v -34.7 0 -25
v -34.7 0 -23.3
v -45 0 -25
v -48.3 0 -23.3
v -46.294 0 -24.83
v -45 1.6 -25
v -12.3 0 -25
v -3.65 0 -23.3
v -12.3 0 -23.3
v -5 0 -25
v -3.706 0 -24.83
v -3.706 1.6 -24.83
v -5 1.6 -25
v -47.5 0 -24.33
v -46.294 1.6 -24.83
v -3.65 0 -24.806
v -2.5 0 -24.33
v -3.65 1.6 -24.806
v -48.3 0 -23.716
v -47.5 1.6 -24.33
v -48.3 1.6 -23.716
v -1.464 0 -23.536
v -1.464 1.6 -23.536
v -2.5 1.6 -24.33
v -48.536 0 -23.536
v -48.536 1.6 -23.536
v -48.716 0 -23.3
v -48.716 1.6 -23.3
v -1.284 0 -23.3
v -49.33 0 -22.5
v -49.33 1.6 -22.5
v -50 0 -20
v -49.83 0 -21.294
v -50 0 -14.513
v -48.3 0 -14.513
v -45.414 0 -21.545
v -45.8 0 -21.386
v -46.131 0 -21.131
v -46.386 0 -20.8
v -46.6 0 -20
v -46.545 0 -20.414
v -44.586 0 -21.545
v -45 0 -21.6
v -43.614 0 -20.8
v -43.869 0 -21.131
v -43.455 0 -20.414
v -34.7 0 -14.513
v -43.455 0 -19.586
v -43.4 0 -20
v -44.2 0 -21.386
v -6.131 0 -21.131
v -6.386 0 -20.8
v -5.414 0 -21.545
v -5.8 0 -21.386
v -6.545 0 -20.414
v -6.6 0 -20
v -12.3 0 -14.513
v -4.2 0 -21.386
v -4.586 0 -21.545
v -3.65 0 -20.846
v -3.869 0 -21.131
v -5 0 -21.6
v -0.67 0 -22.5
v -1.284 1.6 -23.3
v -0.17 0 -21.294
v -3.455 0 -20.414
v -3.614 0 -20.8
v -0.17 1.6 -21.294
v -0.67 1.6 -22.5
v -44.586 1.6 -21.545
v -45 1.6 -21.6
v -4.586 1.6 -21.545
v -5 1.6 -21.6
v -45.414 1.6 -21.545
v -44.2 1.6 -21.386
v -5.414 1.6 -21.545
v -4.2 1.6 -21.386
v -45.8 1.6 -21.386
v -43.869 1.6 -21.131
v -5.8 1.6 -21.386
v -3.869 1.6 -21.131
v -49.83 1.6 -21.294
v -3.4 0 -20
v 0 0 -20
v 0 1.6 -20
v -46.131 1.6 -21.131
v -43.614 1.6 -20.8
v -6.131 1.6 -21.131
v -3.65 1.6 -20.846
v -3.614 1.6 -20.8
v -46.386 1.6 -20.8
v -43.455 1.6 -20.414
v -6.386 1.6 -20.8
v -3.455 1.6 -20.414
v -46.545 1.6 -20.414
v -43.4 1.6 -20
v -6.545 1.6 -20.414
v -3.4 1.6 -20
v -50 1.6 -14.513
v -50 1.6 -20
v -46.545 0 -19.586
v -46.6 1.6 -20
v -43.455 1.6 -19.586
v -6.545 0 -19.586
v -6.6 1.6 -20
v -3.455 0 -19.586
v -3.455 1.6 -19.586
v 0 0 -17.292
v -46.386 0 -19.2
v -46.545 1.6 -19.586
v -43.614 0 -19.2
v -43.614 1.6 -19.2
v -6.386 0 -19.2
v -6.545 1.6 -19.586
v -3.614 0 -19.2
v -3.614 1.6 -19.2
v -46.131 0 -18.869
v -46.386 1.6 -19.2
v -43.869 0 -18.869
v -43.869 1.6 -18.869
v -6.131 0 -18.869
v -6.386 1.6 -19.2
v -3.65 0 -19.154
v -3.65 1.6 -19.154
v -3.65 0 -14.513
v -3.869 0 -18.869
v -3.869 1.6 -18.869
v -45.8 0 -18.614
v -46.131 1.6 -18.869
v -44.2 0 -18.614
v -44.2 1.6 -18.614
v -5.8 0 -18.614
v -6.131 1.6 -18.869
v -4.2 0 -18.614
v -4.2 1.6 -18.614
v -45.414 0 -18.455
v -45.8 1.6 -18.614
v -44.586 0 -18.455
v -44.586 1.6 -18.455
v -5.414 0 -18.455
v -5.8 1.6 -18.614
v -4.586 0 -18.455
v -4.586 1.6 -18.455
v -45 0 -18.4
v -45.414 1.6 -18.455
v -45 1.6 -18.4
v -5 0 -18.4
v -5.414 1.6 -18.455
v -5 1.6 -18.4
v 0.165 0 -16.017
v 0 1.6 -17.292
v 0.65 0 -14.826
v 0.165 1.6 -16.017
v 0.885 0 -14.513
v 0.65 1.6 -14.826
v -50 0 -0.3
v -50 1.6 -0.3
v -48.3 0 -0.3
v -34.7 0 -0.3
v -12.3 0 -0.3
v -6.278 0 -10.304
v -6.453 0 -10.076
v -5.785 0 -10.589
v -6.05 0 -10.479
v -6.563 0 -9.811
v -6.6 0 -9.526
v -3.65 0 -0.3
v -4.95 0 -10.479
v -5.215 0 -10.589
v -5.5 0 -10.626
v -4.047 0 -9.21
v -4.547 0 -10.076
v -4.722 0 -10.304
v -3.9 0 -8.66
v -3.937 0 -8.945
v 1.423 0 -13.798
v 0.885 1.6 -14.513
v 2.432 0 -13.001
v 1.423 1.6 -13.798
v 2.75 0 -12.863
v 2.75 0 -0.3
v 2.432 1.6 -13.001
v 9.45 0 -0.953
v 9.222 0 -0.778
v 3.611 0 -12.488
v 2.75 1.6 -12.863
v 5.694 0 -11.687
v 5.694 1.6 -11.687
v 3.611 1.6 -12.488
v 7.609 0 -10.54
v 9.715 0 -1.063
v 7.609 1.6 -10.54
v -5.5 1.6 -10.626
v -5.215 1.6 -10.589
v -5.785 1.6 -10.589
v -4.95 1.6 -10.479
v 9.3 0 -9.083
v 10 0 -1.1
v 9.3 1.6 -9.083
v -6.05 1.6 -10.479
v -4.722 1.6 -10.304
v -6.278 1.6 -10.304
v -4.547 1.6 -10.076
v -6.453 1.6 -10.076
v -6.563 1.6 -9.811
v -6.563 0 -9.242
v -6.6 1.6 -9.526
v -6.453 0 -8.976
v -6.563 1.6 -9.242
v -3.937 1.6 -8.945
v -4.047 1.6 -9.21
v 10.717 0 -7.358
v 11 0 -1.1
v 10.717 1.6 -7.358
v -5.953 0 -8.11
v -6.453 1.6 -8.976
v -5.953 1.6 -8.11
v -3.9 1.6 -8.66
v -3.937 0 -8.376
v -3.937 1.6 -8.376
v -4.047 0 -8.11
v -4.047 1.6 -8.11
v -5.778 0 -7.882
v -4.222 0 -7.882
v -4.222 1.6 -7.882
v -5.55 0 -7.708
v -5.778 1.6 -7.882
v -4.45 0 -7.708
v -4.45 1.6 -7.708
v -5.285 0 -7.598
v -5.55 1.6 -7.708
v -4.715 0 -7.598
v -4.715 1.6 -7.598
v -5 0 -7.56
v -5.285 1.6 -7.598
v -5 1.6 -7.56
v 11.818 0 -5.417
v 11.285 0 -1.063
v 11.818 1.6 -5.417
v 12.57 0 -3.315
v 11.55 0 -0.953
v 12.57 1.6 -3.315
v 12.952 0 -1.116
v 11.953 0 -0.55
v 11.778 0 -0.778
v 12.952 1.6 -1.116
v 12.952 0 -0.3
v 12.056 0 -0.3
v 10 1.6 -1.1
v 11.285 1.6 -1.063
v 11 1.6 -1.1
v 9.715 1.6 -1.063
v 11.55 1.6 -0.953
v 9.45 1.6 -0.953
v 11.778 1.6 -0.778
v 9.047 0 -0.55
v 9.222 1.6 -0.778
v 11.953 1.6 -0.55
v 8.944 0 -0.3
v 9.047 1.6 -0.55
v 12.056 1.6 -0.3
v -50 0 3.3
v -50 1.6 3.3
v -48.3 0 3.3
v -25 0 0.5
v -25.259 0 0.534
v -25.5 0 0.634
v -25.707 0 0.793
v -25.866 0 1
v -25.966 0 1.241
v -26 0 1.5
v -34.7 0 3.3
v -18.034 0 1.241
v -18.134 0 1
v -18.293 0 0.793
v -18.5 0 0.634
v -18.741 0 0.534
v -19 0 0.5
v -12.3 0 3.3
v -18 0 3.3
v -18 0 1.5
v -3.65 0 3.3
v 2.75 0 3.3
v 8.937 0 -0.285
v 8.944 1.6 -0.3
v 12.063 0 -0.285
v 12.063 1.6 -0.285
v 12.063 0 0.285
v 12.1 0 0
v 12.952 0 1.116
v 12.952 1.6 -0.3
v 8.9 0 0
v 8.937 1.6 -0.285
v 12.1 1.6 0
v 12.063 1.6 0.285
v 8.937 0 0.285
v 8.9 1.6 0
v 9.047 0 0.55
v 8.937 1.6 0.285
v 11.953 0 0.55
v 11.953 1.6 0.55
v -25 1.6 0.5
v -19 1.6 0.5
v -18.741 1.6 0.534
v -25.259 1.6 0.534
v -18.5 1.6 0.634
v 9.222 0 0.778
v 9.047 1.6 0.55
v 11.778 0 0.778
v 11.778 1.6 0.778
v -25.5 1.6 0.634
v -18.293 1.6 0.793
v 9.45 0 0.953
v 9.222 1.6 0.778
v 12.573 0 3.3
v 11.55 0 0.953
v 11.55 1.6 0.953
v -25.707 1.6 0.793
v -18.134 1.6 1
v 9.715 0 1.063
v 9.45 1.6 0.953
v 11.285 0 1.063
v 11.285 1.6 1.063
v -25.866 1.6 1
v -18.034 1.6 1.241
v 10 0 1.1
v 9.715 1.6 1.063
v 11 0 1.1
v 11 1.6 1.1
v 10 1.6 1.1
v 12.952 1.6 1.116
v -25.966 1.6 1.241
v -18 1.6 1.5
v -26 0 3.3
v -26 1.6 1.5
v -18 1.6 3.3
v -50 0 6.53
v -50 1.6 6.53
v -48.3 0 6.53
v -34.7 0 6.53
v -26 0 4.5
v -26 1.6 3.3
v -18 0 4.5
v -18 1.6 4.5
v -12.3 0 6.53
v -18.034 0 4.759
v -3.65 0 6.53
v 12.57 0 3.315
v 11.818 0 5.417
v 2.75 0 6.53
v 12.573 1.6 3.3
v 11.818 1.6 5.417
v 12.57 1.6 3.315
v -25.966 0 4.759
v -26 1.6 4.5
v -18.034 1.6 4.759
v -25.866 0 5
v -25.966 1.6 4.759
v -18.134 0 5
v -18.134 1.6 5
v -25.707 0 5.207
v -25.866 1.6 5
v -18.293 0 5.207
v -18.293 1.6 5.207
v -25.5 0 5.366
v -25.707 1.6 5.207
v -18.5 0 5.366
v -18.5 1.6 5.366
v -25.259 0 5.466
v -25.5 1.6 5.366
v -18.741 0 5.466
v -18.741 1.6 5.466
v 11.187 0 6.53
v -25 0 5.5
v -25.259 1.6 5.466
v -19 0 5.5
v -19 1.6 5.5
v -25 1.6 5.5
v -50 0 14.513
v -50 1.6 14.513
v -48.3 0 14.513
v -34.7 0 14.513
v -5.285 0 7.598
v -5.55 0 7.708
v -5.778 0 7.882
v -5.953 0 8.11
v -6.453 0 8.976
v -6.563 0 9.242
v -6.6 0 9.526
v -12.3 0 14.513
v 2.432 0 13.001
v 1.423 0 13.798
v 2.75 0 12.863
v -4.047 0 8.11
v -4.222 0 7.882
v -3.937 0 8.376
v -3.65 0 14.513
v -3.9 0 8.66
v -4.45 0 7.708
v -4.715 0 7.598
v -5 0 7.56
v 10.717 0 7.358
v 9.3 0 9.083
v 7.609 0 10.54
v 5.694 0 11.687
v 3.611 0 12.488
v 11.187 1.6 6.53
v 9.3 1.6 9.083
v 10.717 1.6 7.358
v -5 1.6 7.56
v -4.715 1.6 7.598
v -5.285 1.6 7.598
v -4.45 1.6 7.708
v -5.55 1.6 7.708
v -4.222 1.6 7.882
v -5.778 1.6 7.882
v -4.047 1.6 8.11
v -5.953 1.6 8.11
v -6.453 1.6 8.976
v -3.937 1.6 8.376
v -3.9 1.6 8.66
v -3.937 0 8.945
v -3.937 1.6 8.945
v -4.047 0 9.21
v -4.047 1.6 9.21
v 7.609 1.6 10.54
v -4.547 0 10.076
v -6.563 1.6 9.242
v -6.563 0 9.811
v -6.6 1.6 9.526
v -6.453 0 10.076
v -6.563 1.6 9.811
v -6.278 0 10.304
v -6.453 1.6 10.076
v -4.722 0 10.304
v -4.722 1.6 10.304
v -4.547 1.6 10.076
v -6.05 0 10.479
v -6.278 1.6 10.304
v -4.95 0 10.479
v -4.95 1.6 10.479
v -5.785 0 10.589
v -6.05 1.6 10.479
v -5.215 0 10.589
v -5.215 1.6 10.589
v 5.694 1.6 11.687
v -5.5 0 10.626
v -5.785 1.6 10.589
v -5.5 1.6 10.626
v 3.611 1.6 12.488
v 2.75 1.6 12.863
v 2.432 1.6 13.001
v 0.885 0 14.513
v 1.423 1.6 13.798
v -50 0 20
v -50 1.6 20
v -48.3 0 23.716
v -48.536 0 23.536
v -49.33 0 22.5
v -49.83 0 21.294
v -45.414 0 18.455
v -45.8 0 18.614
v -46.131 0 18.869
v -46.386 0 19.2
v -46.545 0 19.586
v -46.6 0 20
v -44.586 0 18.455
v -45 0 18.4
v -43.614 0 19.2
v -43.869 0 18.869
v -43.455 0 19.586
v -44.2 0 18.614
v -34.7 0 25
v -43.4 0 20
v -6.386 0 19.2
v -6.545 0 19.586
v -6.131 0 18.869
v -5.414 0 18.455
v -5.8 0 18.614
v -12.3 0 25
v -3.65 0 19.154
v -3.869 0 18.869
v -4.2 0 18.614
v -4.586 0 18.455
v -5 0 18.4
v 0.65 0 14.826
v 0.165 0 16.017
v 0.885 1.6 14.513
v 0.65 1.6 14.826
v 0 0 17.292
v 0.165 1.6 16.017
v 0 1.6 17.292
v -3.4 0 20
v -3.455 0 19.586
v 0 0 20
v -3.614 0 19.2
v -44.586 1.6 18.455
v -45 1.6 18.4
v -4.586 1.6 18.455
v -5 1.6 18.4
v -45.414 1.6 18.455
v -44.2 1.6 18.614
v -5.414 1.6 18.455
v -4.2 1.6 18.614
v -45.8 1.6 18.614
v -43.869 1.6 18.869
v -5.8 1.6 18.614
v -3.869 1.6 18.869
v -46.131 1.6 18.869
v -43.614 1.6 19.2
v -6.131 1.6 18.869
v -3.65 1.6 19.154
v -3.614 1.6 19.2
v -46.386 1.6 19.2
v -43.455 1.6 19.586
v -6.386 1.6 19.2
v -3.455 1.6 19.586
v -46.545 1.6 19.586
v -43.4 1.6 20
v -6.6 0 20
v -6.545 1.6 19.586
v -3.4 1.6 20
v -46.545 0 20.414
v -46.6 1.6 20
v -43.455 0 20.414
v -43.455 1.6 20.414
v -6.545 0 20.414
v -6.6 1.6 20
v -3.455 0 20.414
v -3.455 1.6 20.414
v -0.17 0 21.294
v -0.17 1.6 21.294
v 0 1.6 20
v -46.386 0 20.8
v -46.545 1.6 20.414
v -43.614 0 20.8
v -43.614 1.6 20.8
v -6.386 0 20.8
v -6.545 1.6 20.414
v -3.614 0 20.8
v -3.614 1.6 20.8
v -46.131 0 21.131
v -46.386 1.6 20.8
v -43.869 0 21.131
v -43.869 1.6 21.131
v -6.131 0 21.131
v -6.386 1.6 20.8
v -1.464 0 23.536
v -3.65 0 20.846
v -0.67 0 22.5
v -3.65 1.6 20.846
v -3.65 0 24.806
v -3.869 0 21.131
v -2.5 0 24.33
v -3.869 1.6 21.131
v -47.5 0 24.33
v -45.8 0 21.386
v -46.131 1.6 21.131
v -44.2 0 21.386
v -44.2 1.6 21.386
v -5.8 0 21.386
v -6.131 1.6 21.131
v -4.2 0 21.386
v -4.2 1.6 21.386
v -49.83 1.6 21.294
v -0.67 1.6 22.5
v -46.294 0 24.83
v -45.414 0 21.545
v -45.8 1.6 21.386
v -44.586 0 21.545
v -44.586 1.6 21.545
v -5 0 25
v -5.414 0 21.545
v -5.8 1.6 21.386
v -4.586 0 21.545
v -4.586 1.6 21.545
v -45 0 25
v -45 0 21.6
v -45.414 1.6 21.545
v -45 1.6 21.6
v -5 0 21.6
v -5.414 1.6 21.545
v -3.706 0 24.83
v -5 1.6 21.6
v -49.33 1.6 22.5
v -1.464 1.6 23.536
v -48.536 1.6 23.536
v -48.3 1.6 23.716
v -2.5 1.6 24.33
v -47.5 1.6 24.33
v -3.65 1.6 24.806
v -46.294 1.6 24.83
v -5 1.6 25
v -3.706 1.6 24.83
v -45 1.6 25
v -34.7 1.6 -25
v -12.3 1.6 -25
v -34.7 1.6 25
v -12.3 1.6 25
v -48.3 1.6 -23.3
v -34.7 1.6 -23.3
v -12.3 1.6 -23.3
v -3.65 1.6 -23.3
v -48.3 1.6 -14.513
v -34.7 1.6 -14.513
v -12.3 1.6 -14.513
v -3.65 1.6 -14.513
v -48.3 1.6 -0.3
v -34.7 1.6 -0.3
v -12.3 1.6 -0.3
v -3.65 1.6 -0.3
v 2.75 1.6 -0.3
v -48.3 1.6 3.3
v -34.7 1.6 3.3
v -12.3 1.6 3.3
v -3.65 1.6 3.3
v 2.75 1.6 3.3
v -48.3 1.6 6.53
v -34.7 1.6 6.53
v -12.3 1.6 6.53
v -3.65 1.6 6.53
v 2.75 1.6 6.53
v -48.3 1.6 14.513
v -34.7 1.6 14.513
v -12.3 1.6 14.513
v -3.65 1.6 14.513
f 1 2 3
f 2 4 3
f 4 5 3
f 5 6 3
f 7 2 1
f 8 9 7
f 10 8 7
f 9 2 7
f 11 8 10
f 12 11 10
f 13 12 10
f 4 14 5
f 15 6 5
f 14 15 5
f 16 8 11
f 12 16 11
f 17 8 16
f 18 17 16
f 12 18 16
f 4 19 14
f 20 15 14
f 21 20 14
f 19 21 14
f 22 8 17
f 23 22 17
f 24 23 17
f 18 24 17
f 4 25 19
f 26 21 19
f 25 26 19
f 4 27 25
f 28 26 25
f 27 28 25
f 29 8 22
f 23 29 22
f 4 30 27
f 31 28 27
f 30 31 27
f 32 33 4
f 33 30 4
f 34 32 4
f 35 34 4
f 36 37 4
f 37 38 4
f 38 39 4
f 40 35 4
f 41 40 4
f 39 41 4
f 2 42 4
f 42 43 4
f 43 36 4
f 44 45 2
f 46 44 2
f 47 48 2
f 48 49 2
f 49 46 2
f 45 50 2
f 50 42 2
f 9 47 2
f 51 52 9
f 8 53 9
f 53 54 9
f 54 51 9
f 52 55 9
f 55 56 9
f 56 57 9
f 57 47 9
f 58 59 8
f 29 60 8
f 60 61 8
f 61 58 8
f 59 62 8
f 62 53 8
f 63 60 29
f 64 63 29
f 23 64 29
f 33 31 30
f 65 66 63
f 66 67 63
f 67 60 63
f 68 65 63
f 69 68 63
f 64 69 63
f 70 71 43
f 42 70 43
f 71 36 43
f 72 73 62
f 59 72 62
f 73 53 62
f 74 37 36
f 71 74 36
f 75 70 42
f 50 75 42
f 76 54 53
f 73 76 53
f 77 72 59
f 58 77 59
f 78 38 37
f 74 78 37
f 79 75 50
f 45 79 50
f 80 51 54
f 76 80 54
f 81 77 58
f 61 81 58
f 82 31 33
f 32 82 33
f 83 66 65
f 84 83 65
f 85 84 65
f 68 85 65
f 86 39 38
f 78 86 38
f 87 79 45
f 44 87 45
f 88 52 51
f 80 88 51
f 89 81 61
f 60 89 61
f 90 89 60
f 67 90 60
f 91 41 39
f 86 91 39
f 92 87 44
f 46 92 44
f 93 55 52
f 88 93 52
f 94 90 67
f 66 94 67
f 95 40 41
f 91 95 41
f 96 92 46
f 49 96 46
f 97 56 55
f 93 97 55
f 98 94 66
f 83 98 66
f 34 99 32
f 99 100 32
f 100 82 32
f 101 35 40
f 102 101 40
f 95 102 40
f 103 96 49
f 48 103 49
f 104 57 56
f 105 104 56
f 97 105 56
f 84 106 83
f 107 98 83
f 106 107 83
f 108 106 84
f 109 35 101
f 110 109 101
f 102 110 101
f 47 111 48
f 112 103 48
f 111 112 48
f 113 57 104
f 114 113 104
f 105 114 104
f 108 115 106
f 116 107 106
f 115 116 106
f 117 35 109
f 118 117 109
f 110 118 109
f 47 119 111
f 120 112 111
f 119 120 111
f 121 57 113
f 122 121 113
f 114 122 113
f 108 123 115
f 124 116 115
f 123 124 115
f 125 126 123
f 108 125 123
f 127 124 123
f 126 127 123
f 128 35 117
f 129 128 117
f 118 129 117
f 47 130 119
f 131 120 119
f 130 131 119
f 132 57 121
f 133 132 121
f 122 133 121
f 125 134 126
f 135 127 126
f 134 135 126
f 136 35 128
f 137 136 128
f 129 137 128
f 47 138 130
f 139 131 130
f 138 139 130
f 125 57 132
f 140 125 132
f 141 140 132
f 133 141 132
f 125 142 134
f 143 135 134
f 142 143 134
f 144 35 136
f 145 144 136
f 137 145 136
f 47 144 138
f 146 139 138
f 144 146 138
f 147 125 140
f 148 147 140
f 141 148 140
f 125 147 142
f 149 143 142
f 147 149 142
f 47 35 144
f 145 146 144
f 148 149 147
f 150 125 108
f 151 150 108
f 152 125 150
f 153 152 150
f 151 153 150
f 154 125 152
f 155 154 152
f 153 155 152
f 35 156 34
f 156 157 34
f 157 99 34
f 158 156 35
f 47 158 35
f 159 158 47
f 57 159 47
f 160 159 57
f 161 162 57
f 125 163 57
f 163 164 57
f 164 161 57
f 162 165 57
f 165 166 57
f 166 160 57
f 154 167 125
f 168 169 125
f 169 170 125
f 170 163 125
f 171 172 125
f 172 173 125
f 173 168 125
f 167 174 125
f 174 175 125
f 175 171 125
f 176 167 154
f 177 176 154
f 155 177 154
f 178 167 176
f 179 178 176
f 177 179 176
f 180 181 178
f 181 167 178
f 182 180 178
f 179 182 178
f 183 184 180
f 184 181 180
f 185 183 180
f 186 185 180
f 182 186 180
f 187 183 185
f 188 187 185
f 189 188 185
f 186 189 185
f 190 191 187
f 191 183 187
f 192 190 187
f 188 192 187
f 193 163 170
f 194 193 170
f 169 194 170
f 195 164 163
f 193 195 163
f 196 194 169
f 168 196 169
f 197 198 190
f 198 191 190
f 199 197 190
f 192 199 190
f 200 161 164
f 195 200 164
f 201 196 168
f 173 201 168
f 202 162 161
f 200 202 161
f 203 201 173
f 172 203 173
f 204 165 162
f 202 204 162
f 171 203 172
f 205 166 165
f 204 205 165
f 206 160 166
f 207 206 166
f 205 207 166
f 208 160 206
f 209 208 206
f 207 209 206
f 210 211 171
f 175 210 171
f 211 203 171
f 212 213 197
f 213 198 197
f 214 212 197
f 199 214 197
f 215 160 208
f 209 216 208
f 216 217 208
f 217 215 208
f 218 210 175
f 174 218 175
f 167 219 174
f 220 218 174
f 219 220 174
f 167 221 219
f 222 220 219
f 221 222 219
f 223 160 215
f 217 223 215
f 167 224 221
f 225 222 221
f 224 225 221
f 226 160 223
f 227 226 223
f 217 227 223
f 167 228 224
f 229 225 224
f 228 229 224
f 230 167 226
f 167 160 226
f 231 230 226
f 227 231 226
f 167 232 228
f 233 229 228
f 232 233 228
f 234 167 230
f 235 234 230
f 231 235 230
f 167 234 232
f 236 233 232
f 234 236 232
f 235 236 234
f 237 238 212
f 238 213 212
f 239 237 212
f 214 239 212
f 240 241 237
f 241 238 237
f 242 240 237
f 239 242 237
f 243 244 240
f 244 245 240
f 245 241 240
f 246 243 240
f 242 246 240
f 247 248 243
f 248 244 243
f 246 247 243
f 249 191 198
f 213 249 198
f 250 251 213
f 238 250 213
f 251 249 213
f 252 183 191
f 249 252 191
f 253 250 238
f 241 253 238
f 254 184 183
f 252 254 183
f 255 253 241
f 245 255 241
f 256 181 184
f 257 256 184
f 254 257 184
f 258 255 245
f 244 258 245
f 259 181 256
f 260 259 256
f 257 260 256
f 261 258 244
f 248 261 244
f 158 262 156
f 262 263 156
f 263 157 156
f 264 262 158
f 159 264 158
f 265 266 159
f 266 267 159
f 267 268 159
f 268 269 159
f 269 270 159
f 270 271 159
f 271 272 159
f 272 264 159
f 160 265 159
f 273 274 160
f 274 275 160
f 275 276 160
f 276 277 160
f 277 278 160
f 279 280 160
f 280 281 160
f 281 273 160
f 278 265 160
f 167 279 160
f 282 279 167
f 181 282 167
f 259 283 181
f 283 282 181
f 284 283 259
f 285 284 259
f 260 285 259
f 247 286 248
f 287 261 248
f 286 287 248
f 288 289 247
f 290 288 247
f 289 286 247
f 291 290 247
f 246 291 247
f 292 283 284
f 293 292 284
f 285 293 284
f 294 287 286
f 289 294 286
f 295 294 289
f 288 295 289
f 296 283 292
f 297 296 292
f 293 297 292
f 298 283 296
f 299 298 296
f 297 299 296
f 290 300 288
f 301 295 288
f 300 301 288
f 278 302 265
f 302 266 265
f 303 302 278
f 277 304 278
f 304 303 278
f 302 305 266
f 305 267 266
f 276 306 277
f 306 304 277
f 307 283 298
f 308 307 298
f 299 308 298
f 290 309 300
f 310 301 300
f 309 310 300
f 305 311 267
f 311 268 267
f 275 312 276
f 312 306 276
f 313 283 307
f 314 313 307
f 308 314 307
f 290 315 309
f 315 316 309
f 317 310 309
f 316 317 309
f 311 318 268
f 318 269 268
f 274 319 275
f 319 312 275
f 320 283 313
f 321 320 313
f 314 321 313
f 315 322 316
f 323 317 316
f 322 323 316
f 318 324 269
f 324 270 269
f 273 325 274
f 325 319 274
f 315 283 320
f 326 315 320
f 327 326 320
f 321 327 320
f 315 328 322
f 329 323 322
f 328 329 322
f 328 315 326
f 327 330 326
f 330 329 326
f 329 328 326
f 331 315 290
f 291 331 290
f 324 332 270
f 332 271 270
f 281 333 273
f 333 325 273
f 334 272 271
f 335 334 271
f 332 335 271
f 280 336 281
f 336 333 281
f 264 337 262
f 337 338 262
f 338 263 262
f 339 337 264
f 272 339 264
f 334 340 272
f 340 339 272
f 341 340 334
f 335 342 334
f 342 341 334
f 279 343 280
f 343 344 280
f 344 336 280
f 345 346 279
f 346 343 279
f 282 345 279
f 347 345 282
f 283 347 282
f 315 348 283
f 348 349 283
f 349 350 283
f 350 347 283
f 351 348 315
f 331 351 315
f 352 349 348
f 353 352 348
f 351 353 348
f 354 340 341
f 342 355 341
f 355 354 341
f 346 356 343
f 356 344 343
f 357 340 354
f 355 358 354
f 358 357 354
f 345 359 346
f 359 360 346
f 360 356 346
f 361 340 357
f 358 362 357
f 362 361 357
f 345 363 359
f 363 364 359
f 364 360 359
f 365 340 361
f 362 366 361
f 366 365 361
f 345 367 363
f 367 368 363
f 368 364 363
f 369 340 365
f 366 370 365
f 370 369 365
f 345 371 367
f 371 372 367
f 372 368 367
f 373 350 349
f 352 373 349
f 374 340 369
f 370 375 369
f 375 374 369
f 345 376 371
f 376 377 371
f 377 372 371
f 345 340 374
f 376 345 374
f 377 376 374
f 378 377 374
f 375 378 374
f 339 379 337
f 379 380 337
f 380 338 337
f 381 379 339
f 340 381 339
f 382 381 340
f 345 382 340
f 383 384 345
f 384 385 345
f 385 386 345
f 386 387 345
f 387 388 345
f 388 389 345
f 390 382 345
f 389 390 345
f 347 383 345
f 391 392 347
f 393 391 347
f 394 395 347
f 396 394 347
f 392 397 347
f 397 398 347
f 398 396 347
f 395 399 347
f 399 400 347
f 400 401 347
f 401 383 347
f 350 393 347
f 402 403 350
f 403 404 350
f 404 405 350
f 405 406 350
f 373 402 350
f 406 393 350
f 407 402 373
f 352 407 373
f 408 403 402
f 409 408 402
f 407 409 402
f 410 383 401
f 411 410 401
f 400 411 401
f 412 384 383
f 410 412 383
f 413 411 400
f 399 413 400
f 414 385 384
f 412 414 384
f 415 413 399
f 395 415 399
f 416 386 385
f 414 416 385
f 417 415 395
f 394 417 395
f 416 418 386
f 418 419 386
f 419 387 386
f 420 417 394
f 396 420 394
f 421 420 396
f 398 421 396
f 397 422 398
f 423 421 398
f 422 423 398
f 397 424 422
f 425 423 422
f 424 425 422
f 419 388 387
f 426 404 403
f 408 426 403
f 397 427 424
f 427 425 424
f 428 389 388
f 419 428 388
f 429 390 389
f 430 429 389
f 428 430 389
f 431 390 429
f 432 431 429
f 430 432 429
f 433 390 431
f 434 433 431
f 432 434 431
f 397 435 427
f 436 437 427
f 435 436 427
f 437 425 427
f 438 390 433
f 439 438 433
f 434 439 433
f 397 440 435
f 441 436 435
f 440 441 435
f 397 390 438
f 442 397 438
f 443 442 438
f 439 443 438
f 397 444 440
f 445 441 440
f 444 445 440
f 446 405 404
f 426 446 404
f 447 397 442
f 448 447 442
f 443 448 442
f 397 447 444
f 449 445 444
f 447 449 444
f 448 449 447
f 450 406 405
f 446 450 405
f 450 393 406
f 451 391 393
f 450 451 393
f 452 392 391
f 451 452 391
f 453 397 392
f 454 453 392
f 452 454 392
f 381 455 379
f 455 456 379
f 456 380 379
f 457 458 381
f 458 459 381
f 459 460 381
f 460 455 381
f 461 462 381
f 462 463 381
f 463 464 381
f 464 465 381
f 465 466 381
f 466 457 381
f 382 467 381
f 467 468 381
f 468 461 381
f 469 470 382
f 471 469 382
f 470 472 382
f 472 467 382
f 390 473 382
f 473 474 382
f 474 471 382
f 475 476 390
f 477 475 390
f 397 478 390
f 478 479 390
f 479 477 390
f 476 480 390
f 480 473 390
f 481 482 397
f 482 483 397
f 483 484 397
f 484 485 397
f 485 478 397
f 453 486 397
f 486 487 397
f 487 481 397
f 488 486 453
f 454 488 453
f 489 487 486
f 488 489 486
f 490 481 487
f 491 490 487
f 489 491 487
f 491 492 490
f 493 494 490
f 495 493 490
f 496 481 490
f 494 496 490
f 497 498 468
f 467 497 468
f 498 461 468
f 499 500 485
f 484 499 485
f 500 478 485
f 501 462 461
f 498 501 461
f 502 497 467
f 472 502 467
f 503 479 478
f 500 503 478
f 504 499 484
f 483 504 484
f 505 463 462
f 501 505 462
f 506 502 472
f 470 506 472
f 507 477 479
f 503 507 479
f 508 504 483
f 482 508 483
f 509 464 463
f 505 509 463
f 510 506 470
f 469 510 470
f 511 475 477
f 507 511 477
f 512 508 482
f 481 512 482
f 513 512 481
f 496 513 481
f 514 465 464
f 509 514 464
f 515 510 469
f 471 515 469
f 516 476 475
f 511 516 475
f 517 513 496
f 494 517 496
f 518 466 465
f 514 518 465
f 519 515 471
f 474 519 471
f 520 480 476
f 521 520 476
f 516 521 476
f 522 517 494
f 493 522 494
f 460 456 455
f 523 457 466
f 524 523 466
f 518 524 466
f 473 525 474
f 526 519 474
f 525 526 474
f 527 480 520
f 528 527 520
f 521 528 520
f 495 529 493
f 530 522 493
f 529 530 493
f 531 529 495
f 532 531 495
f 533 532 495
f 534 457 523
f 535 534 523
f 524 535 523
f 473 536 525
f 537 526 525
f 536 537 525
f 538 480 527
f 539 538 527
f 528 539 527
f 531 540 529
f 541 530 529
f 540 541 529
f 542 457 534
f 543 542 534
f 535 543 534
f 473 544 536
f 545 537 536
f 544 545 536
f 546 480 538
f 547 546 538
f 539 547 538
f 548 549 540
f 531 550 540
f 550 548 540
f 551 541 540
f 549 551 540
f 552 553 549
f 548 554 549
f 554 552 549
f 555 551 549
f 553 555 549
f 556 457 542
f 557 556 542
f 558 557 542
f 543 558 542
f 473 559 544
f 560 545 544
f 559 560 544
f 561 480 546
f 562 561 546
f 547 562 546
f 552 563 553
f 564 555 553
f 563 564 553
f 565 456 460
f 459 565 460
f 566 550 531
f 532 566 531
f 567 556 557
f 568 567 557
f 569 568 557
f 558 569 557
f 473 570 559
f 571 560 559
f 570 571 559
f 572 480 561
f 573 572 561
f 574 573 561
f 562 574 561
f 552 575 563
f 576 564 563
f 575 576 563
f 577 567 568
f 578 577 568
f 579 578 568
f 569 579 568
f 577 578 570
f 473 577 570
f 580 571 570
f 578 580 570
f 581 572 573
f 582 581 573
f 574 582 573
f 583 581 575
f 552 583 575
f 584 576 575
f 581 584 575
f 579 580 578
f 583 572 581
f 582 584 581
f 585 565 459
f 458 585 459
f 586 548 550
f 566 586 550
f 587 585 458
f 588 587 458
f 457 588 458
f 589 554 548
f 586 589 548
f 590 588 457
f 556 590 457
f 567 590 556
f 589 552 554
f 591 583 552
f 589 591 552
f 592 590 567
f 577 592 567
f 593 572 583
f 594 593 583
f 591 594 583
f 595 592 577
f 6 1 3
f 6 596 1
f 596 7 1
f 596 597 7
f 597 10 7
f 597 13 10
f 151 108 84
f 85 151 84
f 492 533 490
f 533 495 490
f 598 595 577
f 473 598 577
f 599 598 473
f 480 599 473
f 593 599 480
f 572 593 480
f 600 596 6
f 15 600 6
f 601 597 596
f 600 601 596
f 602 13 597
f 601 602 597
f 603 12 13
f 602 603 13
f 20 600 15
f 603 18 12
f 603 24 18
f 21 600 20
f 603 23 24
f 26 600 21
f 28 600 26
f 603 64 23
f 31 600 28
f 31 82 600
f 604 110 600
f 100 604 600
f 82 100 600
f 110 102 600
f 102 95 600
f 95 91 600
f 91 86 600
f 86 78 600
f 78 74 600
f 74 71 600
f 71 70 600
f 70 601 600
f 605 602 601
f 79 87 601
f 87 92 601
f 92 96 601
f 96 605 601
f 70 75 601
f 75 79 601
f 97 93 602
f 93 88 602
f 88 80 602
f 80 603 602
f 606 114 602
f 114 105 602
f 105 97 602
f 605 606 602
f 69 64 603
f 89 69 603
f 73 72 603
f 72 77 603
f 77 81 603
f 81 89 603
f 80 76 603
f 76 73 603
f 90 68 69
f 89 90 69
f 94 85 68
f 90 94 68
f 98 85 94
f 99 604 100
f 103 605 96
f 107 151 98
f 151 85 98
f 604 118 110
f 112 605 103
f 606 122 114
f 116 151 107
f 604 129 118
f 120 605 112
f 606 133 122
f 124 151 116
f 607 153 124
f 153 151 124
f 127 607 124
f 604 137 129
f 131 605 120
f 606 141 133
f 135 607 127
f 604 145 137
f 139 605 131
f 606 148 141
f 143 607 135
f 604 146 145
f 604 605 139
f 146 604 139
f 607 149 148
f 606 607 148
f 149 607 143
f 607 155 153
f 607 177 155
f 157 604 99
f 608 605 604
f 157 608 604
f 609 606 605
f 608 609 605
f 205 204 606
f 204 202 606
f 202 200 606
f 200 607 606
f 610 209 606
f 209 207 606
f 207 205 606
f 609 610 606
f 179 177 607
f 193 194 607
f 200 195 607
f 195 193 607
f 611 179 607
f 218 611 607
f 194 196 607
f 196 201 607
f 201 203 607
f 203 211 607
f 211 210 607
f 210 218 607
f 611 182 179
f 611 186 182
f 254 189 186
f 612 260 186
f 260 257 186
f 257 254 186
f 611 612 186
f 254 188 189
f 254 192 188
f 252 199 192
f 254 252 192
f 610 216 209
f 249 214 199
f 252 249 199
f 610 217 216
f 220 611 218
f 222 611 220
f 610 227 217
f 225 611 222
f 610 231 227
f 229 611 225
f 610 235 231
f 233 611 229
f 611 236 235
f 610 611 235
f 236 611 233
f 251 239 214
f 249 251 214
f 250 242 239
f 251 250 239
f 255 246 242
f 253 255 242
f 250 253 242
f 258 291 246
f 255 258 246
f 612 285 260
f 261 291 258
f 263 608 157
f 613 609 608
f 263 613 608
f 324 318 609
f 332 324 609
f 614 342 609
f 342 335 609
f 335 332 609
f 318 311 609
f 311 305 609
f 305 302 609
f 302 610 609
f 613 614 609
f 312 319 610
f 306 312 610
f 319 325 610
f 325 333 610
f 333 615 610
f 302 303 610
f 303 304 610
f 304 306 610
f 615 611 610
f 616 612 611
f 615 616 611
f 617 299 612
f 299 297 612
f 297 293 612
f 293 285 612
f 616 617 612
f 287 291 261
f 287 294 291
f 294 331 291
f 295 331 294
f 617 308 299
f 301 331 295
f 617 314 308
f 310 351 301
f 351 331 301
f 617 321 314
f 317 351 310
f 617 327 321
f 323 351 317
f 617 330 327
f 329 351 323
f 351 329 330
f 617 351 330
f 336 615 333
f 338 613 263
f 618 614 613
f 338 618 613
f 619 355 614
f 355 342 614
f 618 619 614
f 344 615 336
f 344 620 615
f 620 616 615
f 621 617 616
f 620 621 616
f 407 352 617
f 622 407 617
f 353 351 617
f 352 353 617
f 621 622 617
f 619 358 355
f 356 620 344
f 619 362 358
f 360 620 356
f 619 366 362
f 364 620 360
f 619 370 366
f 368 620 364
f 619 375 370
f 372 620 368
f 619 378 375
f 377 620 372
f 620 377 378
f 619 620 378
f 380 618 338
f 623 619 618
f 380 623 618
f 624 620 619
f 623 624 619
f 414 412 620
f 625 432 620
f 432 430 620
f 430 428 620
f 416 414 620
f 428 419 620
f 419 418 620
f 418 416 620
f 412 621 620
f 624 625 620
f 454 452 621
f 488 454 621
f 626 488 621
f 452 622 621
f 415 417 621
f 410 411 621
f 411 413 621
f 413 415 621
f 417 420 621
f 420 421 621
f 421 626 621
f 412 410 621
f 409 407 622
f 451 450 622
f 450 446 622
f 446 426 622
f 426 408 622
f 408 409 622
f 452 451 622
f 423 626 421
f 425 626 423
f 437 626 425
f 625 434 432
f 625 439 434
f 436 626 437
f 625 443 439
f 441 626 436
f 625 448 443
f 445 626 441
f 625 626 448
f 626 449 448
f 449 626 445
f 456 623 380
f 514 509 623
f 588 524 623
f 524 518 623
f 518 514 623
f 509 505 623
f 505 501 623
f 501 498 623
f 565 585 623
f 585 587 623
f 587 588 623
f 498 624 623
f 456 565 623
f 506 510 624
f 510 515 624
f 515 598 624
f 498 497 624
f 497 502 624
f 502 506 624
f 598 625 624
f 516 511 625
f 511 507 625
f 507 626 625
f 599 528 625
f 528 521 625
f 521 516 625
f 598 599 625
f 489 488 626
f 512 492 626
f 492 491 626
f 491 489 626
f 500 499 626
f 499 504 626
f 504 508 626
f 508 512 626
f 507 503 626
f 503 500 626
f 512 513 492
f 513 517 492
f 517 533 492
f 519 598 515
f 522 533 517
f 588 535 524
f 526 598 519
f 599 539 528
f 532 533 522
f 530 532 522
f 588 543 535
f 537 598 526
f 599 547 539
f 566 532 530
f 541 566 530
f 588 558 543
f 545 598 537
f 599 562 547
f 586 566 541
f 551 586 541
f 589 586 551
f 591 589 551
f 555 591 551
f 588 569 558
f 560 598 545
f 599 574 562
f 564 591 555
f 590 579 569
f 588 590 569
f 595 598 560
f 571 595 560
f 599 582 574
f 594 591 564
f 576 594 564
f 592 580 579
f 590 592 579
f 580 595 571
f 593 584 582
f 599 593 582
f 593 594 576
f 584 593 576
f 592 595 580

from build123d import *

# Parameters (mm, degrees)
BOSS_EXTRUDE1_DEPTH = 1.6
FILLET1_R           = 5
CUT_EXTRUDE1_DEPTH  = 56.924592086
SKETCH3_R           = 1.6
CUT_EXTRUDE2_DEPTH  = 56.924592086
FILLET2_R           = 5
SKETCH4_W           = 8
SKETCH4_H           = 5
CUT_EXTRUDE3_DEPTH  = 56.924592086
FILLET3_R           = 1


with BuildPart() as part:
    # Sketch1 → Boss-Extrude1 (new body)
    with BuildSketch(Plane(origin=(0, 0, 0), x_dir=(1, 0, 0), z_dir=(0, 1, 0))):
        with BuildLine():
            Line((-50, 25), (-50, -25))
            Line((-50, -25), (0, -25))
            Line((0, -25), (0, -13))
            ThreePointArc((0, -13), (13, 0), (0, 13))
            Line((0, 13), (0, 25))
            Line((0, 25), (-50, 25))
        make_face()
    extrude(amount=BOSS_EXTRUDE1_DEPTH)

    # Fillet1
    fillet1_edges = [part.edges().sort_by_distance(p)[0] for p in [
        (-50, 0.8, 25),
        (-50, 0.8, -25),
        (0, 0.8, -25),
        (0, 0.8, 25),
    ]]
    fillet(fillet1_edges, radius=FILLET1_R)

    # Sketch2 → Cut-Extrude1 (cut, through all)
    with BuildSketch(Plane(origin=(0, 0, 0), x_dir=(1, 0, 0), z_dir=(0, 1, 0))):
        with BuildLine():
            Line((-6.452627944, -8.976279442), (-5.952627944, -8.110254038))
            ThreePointArc((-5.952627944, -8.110254038), (-4.45, -7.707626094), (-4.047372056, -9.210254038))
            Line((-4.047372056, -9.210254038), (-4.547372056, -10.076279442))
            ThreePointArc((-4.547372056, -10.076279442), (-6.05, -10.478907386), (-6.452627944, -8.976279442))
        make_face()
        with BuildLine():
            Line((10, 1.1), (11, 1.1))
            ThreePointArc((11, 1.1), (12.1, 0), (11, -1.1))
            Line((11, -1.1), (10, -1.1))
            ThreePointArc((10, -1.1), (8.9, 0), (10, 1.1))
        make_face()
        with BuildLine():
            Line((-5.952627944, 8.110254038), (-6.452627944, 8.976279442))
            ThreePointArc((-6.452627944, 8.976279442), (-6.05, 10.478907386), (-4.547372056, 10.076279442))
            Line((-4.547372056, 10.076279442), (-4.047372056, 9.210254038))
            ThreePointArc((-4.047372056, 9.210254038), (-4.45, 7.707626094), (-5.952627944, 8.110254038))
        make_face()
    extrude(amount=CUT_EXTRUDE1_DEPTH, mode=Mode.SUBTRACT)

    # Sketch3 → Cut-Extrude2 (cut, through all)
    with BuildSketch(Plane(origin=(0, 0, 0), x_dir=(1, 0, 0), z_dir=(0, 1, 0))):
        with Locations((-45, 20)):
            Circle(SKETCH3_R)
        with Locations((-5, 20)):
            Circle(SKETCH3_R)
        with Locations((-5, -20)):
            Circle(SKETCH3_R)
        with Locations((-45, -20)):
            Circle(SKETCH3_R)
    extrude(amount=CUT_EXTRUDE2_DEPTH, mode=Mode.SUBTRACT)

    # Fillet2
    fillet2_edges = [part.edges().sort_by_distance(p)[0] for p in [
        (0, 0.8, -13),
        (0, 0.8, 13),
    ]]
    fillet(fillet2_edges, radius=FILLET2_R)

    # Sketch4 → Cut-Extrude3 (cut, through all)
    with BuildSketch(Plane.XZ):
        with Locations((-22, 3)):
            Rectangle(SKETCH4_W, SKETCH4_H)
    extrude(amount=-CUT_EXTRUDE3_DEPTH, mode=Mode.SUBTRACT)

    # Fillet3
    fillet3_edges = [part.edges().sort_by_distance(p)[0] for p in [
        (-18, 0.8, 5.5),
        (-18, 0.8, 0.5),
        (-26, 0.8, 0.5),
        (-26, 0.8, 5.5),
    ]]
    fillet(fillet3_edges, radius=FILLET3_R)


solid = part.part
